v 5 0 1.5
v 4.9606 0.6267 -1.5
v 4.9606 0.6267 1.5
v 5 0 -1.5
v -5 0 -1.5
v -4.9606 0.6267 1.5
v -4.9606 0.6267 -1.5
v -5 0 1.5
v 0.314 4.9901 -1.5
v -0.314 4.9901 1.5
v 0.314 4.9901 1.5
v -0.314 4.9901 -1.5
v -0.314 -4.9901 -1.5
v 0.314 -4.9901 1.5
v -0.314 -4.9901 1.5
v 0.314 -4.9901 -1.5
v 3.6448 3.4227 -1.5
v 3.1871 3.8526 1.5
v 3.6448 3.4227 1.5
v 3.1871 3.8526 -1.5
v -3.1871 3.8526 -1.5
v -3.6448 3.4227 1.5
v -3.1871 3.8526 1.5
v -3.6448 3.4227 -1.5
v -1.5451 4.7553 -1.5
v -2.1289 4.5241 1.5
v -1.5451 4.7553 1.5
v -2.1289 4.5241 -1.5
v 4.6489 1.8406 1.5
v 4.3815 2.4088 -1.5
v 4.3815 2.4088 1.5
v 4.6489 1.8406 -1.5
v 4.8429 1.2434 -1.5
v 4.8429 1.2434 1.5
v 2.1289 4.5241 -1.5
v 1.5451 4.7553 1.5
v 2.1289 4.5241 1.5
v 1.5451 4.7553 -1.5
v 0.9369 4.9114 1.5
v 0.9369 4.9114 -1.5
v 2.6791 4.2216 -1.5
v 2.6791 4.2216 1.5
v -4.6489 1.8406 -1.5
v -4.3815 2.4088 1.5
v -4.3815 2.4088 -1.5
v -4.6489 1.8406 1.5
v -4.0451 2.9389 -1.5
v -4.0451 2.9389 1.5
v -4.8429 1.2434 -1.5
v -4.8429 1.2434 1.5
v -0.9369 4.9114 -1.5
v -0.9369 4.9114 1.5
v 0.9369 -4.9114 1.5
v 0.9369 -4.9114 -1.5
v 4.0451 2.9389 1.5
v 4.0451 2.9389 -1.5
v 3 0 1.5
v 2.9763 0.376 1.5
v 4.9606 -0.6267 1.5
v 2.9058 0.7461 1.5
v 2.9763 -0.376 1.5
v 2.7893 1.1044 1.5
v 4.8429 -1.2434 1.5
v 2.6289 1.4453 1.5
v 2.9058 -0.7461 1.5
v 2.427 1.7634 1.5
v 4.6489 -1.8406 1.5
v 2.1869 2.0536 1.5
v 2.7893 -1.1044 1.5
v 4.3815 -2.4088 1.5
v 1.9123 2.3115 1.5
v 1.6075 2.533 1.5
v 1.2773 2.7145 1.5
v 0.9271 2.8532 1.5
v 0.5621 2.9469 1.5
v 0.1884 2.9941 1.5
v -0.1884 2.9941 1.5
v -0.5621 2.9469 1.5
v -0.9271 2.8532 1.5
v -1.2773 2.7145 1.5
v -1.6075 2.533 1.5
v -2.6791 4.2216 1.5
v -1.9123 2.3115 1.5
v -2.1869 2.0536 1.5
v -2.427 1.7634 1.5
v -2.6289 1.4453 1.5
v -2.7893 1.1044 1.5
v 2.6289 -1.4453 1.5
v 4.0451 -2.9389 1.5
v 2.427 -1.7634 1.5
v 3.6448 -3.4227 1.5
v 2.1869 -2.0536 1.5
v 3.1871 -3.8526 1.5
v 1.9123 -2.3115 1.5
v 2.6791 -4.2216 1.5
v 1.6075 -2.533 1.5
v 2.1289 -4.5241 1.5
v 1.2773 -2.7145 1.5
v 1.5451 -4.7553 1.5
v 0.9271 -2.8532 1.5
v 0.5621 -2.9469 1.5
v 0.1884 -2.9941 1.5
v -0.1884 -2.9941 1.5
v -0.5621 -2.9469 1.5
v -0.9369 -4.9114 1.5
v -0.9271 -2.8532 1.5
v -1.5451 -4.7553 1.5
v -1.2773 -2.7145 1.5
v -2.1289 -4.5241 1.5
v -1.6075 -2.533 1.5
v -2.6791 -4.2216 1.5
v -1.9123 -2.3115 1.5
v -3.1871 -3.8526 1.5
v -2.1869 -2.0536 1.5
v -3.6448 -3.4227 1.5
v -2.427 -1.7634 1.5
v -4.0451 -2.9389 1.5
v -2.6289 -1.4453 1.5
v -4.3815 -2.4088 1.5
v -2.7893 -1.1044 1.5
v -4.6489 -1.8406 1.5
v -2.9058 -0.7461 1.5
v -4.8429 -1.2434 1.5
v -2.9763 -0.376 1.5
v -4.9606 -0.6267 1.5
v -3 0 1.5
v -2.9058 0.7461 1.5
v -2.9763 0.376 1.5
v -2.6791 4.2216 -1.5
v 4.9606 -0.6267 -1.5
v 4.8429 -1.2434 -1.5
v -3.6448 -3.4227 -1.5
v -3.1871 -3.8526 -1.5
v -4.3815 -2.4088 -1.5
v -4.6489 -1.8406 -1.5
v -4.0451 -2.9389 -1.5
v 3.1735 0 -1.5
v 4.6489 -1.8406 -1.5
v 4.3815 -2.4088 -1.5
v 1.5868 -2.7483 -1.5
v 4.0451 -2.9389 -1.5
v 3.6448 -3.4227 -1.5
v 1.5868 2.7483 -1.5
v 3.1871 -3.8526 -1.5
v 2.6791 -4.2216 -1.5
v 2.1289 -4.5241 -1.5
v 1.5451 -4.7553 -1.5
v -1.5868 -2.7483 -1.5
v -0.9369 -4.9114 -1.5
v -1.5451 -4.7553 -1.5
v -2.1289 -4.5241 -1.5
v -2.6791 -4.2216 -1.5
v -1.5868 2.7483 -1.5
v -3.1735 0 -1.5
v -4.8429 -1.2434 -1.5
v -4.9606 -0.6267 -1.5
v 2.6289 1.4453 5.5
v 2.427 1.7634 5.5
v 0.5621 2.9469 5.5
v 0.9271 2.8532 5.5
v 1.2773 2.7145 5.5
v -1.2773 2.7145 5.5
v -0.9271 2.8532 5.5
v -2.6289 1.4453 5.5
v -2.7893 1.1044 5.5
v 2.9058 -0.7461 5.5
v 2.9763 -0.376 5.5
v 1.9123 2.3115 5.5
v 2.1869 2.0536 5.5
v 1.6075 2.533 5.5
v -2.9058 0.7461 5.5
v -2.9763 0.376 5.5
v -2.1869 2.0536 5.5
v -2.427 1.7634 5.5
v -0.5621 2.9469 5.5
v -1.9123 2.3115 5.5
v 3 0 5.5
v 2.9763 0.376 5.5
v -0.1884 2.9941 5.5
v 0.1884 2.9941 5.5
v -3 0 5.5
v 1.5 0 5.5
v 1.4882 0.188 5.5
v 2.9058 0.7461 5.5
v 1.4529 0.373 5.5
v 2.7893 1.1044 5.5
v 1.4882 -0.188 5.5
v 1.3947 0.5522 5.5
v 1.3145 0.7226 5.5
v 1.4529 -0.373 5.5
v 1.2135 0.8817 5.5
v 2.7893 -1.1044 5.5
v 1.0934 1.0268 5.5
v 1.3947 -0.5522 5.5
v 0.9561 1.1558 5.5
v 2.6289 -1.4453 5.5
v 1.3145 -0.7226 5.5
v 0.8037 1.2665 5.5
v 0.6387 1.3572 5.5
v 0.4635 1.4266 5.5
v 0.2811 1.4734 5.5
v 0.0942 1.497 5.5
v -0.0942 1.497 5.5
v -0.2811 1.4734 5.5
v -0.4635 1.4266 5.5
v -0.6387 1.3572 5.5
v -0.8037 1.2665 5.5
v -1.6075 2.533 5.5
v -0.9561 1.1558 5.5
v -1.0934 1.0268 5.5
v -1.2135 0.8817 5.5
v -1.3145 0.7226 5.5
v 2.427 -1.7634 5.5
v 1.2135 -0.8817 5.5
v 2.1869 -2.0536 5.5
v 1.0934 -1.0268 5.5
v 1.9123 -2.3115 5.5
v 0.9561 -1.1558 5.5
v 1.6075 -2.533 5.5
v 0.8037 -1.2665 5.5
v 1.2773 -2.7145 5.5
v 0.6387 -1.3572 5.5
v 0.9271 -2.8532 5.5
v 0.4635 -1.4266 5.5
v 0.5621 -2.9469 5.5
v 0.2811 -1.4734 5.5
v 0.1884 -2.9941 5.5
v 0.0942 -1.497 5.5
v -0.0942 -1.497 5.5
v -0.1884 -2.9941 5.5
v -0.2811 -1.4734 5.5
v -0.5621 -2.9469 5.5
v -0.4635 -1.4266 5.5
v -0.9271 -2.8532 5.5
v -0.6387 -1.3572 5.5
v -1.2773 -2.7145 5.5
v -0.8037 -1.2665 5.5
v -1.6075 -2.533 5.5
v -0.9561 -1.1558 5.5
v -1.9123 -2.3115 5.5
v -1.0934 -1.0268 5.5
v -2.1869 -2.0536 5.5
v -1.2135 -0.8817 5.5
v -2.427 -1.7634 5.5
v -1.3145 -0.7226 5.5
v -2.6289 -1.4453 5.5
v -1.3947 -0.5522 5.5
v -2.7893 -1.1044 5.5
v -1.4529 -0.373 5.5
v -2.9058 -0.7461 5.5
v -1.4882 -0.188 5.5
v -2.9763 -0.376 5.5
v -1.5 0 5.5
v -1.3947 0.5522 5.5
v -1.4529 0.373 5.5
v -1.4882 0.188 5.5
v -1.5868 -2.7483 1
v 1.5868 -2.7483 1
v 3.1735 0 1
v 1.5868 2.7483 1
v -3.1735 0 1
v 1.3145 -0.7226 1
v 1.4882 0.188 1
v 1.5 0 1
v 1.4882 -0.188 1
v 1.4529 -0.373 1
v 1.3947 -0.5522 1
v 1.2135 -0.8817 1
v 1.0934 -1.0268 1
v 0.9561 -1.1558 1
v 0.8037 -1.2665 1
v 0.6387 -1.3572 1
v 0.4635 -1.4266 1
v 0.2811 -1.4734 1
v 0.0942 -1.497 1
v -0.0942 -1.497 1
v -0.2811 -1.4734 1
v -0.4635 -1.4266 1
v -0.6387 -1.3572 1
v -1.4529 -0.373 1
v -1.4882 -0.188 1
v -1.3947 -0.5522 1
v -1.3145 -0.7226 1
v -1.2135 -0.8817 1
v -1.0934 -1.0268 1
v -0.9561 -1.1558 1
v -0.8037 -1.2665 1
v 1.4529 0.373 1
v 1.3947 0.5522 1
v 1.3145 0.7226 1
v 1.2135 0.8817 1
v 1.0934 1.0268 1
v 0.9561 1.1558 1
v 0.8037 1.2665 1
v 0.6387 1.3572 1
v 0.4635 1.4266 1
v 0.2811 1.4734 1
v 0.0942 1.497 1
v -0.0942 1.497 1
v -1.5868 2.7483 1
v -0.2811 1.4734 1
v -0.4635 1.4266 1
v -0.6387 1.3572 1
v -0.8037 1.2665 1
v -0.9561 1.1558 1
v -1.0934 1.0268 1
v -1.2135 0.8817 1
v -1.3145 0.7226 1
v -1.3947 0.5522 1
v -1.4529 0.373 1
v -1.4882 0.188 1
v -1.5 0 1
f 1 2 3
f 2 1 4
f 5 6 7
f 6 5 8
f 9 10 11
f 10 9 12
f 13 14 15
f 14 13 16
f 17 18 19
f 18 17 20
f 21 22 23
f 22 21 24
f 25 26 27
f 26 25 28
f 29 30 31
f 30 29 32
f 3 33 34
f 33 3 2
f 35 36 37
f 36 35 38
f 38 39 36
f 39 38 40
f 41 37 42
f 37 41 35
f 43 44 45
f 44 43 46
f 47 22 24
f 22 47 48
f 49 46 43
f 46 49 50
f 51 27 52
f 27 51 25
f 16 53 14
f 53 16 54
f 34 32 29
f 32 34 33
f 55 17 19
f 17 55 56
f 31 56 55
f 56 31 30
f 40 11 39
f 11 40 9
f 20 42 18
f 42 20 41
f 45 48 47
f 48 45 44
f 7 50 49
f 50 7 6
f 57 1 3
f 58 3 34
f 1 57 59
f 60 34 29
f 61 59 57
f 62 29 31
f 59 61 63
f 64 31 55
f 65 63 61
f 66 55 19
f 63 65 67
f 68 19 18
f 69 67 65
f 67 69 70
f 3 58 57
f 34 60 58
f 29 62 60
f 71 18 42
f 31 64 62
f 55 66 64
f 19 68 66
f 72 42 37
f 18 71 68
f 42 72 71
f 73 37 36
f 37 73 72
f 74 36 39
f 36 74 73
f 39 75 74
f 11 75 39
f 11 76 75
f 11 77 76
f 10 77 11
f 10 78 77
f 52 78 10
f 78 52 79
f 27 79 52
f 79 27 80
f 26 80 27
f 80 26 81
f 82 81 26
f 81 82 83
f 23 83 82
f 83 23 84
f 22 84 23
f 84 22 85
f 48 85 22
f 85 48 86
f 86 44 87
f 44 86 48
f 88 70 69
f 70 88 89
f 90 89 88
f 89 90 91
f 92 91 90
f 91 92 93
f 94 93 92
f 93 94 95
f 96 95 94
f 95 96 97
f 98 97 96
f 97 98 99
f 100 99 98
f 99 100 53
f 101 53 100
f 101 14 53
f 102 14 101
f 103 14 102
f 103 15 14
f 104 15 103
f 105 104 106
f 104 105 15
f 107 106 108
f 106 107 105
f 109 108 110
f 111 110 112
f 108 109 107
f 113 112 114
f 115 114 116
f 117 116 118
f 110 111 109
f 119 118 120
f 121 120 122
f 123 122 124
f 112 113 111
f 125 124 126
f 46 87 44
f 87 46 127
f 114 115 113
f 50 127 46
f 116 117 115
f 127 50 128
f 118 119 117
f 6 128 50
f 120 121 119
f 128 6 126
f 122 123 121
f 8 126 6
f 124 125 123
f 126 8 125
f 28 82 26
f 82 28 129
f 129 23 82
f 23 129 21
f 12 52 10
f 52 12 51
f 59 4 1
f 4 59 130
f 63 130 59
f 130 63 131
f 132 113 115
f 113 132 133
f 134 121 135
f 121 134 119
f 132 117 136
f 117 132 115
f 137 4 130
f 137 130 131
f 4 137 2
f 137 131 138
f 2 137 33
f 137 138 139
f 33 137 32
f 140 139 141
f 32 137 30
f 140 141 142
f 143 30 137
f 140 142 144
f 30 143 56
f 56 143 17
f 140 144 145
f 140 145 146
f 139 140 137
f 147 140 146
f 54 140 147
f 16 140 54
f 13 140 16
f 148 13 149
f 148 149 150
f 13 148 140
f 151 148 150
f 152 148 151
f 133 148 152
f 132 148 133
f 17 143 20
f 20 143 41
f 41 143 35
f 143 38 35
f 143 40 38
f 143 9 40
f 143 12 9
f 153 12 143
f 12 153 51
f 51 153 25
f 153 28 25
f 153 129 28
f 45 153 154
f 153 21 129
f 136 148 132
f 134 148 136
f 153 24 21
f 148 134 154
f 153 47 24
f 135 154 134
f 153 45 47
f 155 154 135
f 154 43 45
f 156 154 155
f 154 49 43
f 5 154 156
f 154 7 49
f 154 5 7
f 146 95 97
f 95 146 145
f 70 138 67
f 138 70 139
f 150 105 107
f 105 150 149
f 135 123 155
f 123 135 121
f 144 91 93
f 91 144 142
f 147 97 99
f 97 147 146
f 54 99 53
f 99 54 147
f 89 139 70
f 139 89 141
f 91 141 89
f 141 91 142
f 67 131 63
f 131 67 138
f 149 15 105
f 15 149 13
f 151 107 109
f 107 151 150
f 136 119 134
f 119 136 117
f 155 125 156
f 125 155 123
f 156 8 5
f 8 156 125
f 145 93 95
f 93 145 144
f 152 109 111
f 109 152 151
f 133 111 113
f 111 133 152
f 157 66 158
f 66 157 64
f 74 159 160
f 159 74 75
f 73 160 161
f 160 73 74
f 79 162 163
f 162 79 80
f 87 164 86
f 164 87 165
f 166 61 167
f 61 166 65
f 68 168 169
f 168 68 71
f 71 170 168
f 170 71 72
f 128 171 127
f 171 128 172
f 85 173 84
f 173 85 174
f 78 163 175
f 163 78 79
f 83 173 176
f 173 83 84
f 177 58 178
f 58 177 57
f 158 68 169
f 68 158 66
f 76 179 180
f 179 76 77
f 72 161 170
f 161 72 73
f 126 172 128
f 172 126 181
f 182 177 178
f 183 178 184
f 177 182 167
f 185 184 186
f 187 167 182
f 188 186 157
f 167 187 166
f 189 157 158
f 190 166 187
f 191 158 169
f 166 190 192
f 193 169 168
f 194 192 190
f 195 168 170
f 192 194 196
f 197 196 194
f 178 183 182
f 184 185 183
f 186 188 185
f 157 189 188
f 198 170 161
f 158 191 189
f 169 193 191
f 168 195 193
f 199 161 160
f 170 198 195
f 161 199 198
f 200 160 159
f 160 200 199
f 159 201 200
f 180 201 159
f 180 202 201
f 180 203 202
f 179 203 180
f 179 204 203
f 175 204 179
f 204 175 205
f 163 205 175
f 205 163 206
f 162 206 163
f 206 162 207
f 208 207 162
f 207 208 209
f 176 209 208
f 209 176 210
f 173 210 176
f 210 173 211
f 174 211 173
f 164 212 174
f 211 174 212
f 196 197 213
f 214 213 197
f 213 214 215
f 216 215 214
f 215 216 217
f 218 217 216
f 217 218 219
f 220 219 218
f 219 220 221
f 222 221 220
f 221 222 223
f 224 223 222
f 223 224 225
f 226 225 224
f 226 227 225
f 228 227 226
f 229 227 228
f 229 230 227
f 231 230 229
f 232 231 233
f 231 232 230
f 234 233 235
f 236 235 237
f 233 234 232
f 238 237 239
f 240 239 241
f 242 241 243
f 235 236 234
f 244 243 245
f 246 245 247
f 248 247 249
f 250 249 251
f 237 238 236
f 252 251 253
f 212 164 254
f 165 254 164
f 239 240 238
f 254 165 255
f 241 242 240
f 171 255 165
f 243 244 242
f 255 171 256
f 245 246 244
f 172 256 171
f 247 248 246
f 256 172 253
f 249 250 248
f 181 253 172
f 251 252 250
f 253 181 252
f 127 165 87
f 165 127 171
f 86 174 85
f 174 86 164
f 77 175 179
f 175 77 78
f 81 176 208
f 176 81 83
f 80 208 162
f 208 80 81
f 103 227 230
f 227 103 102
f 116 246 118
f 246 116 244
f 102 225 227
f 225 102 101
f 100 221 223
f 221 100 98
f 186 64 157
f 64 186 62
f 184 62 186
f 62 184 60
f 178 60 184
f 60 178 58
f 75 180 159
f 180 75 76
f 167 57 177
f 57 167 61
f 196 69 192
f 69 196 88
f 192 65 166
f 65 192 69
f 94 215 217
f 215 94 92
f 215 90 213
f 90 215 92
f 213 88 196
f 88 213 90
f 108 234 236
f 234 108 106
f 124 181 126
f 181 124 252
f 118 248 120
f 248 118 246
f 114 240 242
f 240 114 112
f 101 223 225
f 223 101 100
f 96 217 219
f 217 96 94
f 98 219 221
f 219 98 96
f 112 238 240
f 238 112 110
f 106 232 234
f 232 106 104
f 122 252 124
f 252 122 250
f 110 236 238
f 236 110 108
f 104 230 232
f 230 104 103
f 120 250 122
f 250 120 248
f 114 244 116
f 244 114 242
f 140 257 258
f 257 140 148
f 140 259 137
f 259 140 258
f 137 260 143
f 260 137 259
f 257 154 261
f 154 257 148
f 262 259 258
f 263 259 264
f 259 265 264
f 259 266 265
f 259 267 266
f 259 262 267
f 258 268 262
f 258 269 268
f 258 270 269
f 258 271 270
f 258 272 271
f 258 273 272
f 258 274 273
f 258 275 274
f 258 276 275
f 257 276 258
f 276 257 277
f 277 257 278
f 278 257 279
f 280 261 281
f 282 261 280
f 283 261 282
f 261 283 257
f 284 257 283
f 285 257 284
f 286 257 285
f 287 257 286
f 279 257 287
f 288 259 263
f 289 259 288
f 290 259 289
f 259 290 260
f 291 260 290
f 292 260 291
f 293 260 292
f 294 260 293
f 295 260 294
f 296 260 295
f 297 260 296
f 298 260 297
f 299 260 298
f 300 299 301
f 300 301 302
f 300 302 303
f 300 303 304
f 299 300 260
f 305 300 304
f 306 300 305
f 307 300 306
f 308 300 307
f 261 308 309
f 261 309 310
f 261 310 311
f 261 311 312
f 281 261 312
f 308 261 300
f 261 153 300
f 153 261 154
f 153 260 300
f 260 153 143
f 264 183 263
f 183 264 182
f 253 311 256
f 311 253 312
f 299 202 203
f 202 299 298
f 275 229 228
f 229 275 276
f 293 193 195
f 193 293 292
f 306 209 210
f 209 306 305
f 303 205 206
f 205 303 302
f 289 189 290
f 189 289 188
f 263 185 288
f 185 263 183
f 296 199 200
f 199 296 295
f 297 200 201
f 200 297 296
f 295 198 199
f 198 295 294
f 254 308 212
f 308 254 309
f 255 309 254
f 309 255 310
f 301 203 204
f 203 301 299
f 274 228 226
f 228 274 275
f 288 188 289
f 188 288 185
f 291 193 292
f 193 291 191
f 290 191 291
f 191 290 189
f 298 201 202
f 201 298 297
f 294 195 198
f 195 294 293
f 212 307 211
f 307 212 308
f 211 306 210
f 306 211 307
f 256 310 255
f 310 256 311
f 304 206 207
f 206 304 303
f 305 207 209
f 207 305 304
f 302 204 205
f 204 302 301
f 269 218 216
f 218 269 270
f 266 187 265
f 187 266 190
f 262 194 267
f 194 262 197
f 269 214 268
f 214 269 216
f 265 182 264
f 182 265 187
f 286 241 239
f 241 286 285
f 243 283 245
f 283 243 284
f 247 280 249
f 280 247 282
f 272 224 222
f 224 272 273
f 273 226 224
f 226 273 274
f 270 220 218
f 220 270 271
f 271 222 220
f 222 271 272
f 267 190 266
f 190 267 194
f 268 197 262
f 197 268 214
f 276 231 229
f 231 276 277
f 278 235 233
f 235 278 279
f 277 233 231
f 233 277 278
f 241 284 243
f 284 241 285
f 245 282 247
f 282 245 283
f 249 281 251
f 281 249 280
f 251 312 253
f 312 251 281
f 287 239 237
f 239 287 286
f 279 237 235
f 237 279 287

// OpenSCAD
$fn = 50;


difference() {
	union() {
		translate(v = [0, 0, -1.5000000000]) {
			cylinder(h = 3, r = 5.0000000000);
		}
		translate(v = [0, 0, -1.5000000000]) {
			cylinder(h = 7, r = 3.0000000000);
		}
	}
	union() {
		translate(v = [0, 0, -1.5000000000]) {
			rotate(a = [0, 0, 0]) {
				difference() {
					union() {
						#linear_extrude(height = 2.5000000000) {
							polygon(points = [[3.1735000000, 0.0000000000], [1.5867500000, 2.7483316189], [-1.5867500000, 2.7483316189], [-3.1735000000, 0.0000000000], [-1.5867500000, -2.7483316189], [1.5867500000, -2.7483316189]]);
						}
					}
					union();
				}
			}
		}
		translate(v = [0, 0, -50.0000000000]) {
			cylinder(h = 100, r = 1.5000000000);
		}
	}
}
